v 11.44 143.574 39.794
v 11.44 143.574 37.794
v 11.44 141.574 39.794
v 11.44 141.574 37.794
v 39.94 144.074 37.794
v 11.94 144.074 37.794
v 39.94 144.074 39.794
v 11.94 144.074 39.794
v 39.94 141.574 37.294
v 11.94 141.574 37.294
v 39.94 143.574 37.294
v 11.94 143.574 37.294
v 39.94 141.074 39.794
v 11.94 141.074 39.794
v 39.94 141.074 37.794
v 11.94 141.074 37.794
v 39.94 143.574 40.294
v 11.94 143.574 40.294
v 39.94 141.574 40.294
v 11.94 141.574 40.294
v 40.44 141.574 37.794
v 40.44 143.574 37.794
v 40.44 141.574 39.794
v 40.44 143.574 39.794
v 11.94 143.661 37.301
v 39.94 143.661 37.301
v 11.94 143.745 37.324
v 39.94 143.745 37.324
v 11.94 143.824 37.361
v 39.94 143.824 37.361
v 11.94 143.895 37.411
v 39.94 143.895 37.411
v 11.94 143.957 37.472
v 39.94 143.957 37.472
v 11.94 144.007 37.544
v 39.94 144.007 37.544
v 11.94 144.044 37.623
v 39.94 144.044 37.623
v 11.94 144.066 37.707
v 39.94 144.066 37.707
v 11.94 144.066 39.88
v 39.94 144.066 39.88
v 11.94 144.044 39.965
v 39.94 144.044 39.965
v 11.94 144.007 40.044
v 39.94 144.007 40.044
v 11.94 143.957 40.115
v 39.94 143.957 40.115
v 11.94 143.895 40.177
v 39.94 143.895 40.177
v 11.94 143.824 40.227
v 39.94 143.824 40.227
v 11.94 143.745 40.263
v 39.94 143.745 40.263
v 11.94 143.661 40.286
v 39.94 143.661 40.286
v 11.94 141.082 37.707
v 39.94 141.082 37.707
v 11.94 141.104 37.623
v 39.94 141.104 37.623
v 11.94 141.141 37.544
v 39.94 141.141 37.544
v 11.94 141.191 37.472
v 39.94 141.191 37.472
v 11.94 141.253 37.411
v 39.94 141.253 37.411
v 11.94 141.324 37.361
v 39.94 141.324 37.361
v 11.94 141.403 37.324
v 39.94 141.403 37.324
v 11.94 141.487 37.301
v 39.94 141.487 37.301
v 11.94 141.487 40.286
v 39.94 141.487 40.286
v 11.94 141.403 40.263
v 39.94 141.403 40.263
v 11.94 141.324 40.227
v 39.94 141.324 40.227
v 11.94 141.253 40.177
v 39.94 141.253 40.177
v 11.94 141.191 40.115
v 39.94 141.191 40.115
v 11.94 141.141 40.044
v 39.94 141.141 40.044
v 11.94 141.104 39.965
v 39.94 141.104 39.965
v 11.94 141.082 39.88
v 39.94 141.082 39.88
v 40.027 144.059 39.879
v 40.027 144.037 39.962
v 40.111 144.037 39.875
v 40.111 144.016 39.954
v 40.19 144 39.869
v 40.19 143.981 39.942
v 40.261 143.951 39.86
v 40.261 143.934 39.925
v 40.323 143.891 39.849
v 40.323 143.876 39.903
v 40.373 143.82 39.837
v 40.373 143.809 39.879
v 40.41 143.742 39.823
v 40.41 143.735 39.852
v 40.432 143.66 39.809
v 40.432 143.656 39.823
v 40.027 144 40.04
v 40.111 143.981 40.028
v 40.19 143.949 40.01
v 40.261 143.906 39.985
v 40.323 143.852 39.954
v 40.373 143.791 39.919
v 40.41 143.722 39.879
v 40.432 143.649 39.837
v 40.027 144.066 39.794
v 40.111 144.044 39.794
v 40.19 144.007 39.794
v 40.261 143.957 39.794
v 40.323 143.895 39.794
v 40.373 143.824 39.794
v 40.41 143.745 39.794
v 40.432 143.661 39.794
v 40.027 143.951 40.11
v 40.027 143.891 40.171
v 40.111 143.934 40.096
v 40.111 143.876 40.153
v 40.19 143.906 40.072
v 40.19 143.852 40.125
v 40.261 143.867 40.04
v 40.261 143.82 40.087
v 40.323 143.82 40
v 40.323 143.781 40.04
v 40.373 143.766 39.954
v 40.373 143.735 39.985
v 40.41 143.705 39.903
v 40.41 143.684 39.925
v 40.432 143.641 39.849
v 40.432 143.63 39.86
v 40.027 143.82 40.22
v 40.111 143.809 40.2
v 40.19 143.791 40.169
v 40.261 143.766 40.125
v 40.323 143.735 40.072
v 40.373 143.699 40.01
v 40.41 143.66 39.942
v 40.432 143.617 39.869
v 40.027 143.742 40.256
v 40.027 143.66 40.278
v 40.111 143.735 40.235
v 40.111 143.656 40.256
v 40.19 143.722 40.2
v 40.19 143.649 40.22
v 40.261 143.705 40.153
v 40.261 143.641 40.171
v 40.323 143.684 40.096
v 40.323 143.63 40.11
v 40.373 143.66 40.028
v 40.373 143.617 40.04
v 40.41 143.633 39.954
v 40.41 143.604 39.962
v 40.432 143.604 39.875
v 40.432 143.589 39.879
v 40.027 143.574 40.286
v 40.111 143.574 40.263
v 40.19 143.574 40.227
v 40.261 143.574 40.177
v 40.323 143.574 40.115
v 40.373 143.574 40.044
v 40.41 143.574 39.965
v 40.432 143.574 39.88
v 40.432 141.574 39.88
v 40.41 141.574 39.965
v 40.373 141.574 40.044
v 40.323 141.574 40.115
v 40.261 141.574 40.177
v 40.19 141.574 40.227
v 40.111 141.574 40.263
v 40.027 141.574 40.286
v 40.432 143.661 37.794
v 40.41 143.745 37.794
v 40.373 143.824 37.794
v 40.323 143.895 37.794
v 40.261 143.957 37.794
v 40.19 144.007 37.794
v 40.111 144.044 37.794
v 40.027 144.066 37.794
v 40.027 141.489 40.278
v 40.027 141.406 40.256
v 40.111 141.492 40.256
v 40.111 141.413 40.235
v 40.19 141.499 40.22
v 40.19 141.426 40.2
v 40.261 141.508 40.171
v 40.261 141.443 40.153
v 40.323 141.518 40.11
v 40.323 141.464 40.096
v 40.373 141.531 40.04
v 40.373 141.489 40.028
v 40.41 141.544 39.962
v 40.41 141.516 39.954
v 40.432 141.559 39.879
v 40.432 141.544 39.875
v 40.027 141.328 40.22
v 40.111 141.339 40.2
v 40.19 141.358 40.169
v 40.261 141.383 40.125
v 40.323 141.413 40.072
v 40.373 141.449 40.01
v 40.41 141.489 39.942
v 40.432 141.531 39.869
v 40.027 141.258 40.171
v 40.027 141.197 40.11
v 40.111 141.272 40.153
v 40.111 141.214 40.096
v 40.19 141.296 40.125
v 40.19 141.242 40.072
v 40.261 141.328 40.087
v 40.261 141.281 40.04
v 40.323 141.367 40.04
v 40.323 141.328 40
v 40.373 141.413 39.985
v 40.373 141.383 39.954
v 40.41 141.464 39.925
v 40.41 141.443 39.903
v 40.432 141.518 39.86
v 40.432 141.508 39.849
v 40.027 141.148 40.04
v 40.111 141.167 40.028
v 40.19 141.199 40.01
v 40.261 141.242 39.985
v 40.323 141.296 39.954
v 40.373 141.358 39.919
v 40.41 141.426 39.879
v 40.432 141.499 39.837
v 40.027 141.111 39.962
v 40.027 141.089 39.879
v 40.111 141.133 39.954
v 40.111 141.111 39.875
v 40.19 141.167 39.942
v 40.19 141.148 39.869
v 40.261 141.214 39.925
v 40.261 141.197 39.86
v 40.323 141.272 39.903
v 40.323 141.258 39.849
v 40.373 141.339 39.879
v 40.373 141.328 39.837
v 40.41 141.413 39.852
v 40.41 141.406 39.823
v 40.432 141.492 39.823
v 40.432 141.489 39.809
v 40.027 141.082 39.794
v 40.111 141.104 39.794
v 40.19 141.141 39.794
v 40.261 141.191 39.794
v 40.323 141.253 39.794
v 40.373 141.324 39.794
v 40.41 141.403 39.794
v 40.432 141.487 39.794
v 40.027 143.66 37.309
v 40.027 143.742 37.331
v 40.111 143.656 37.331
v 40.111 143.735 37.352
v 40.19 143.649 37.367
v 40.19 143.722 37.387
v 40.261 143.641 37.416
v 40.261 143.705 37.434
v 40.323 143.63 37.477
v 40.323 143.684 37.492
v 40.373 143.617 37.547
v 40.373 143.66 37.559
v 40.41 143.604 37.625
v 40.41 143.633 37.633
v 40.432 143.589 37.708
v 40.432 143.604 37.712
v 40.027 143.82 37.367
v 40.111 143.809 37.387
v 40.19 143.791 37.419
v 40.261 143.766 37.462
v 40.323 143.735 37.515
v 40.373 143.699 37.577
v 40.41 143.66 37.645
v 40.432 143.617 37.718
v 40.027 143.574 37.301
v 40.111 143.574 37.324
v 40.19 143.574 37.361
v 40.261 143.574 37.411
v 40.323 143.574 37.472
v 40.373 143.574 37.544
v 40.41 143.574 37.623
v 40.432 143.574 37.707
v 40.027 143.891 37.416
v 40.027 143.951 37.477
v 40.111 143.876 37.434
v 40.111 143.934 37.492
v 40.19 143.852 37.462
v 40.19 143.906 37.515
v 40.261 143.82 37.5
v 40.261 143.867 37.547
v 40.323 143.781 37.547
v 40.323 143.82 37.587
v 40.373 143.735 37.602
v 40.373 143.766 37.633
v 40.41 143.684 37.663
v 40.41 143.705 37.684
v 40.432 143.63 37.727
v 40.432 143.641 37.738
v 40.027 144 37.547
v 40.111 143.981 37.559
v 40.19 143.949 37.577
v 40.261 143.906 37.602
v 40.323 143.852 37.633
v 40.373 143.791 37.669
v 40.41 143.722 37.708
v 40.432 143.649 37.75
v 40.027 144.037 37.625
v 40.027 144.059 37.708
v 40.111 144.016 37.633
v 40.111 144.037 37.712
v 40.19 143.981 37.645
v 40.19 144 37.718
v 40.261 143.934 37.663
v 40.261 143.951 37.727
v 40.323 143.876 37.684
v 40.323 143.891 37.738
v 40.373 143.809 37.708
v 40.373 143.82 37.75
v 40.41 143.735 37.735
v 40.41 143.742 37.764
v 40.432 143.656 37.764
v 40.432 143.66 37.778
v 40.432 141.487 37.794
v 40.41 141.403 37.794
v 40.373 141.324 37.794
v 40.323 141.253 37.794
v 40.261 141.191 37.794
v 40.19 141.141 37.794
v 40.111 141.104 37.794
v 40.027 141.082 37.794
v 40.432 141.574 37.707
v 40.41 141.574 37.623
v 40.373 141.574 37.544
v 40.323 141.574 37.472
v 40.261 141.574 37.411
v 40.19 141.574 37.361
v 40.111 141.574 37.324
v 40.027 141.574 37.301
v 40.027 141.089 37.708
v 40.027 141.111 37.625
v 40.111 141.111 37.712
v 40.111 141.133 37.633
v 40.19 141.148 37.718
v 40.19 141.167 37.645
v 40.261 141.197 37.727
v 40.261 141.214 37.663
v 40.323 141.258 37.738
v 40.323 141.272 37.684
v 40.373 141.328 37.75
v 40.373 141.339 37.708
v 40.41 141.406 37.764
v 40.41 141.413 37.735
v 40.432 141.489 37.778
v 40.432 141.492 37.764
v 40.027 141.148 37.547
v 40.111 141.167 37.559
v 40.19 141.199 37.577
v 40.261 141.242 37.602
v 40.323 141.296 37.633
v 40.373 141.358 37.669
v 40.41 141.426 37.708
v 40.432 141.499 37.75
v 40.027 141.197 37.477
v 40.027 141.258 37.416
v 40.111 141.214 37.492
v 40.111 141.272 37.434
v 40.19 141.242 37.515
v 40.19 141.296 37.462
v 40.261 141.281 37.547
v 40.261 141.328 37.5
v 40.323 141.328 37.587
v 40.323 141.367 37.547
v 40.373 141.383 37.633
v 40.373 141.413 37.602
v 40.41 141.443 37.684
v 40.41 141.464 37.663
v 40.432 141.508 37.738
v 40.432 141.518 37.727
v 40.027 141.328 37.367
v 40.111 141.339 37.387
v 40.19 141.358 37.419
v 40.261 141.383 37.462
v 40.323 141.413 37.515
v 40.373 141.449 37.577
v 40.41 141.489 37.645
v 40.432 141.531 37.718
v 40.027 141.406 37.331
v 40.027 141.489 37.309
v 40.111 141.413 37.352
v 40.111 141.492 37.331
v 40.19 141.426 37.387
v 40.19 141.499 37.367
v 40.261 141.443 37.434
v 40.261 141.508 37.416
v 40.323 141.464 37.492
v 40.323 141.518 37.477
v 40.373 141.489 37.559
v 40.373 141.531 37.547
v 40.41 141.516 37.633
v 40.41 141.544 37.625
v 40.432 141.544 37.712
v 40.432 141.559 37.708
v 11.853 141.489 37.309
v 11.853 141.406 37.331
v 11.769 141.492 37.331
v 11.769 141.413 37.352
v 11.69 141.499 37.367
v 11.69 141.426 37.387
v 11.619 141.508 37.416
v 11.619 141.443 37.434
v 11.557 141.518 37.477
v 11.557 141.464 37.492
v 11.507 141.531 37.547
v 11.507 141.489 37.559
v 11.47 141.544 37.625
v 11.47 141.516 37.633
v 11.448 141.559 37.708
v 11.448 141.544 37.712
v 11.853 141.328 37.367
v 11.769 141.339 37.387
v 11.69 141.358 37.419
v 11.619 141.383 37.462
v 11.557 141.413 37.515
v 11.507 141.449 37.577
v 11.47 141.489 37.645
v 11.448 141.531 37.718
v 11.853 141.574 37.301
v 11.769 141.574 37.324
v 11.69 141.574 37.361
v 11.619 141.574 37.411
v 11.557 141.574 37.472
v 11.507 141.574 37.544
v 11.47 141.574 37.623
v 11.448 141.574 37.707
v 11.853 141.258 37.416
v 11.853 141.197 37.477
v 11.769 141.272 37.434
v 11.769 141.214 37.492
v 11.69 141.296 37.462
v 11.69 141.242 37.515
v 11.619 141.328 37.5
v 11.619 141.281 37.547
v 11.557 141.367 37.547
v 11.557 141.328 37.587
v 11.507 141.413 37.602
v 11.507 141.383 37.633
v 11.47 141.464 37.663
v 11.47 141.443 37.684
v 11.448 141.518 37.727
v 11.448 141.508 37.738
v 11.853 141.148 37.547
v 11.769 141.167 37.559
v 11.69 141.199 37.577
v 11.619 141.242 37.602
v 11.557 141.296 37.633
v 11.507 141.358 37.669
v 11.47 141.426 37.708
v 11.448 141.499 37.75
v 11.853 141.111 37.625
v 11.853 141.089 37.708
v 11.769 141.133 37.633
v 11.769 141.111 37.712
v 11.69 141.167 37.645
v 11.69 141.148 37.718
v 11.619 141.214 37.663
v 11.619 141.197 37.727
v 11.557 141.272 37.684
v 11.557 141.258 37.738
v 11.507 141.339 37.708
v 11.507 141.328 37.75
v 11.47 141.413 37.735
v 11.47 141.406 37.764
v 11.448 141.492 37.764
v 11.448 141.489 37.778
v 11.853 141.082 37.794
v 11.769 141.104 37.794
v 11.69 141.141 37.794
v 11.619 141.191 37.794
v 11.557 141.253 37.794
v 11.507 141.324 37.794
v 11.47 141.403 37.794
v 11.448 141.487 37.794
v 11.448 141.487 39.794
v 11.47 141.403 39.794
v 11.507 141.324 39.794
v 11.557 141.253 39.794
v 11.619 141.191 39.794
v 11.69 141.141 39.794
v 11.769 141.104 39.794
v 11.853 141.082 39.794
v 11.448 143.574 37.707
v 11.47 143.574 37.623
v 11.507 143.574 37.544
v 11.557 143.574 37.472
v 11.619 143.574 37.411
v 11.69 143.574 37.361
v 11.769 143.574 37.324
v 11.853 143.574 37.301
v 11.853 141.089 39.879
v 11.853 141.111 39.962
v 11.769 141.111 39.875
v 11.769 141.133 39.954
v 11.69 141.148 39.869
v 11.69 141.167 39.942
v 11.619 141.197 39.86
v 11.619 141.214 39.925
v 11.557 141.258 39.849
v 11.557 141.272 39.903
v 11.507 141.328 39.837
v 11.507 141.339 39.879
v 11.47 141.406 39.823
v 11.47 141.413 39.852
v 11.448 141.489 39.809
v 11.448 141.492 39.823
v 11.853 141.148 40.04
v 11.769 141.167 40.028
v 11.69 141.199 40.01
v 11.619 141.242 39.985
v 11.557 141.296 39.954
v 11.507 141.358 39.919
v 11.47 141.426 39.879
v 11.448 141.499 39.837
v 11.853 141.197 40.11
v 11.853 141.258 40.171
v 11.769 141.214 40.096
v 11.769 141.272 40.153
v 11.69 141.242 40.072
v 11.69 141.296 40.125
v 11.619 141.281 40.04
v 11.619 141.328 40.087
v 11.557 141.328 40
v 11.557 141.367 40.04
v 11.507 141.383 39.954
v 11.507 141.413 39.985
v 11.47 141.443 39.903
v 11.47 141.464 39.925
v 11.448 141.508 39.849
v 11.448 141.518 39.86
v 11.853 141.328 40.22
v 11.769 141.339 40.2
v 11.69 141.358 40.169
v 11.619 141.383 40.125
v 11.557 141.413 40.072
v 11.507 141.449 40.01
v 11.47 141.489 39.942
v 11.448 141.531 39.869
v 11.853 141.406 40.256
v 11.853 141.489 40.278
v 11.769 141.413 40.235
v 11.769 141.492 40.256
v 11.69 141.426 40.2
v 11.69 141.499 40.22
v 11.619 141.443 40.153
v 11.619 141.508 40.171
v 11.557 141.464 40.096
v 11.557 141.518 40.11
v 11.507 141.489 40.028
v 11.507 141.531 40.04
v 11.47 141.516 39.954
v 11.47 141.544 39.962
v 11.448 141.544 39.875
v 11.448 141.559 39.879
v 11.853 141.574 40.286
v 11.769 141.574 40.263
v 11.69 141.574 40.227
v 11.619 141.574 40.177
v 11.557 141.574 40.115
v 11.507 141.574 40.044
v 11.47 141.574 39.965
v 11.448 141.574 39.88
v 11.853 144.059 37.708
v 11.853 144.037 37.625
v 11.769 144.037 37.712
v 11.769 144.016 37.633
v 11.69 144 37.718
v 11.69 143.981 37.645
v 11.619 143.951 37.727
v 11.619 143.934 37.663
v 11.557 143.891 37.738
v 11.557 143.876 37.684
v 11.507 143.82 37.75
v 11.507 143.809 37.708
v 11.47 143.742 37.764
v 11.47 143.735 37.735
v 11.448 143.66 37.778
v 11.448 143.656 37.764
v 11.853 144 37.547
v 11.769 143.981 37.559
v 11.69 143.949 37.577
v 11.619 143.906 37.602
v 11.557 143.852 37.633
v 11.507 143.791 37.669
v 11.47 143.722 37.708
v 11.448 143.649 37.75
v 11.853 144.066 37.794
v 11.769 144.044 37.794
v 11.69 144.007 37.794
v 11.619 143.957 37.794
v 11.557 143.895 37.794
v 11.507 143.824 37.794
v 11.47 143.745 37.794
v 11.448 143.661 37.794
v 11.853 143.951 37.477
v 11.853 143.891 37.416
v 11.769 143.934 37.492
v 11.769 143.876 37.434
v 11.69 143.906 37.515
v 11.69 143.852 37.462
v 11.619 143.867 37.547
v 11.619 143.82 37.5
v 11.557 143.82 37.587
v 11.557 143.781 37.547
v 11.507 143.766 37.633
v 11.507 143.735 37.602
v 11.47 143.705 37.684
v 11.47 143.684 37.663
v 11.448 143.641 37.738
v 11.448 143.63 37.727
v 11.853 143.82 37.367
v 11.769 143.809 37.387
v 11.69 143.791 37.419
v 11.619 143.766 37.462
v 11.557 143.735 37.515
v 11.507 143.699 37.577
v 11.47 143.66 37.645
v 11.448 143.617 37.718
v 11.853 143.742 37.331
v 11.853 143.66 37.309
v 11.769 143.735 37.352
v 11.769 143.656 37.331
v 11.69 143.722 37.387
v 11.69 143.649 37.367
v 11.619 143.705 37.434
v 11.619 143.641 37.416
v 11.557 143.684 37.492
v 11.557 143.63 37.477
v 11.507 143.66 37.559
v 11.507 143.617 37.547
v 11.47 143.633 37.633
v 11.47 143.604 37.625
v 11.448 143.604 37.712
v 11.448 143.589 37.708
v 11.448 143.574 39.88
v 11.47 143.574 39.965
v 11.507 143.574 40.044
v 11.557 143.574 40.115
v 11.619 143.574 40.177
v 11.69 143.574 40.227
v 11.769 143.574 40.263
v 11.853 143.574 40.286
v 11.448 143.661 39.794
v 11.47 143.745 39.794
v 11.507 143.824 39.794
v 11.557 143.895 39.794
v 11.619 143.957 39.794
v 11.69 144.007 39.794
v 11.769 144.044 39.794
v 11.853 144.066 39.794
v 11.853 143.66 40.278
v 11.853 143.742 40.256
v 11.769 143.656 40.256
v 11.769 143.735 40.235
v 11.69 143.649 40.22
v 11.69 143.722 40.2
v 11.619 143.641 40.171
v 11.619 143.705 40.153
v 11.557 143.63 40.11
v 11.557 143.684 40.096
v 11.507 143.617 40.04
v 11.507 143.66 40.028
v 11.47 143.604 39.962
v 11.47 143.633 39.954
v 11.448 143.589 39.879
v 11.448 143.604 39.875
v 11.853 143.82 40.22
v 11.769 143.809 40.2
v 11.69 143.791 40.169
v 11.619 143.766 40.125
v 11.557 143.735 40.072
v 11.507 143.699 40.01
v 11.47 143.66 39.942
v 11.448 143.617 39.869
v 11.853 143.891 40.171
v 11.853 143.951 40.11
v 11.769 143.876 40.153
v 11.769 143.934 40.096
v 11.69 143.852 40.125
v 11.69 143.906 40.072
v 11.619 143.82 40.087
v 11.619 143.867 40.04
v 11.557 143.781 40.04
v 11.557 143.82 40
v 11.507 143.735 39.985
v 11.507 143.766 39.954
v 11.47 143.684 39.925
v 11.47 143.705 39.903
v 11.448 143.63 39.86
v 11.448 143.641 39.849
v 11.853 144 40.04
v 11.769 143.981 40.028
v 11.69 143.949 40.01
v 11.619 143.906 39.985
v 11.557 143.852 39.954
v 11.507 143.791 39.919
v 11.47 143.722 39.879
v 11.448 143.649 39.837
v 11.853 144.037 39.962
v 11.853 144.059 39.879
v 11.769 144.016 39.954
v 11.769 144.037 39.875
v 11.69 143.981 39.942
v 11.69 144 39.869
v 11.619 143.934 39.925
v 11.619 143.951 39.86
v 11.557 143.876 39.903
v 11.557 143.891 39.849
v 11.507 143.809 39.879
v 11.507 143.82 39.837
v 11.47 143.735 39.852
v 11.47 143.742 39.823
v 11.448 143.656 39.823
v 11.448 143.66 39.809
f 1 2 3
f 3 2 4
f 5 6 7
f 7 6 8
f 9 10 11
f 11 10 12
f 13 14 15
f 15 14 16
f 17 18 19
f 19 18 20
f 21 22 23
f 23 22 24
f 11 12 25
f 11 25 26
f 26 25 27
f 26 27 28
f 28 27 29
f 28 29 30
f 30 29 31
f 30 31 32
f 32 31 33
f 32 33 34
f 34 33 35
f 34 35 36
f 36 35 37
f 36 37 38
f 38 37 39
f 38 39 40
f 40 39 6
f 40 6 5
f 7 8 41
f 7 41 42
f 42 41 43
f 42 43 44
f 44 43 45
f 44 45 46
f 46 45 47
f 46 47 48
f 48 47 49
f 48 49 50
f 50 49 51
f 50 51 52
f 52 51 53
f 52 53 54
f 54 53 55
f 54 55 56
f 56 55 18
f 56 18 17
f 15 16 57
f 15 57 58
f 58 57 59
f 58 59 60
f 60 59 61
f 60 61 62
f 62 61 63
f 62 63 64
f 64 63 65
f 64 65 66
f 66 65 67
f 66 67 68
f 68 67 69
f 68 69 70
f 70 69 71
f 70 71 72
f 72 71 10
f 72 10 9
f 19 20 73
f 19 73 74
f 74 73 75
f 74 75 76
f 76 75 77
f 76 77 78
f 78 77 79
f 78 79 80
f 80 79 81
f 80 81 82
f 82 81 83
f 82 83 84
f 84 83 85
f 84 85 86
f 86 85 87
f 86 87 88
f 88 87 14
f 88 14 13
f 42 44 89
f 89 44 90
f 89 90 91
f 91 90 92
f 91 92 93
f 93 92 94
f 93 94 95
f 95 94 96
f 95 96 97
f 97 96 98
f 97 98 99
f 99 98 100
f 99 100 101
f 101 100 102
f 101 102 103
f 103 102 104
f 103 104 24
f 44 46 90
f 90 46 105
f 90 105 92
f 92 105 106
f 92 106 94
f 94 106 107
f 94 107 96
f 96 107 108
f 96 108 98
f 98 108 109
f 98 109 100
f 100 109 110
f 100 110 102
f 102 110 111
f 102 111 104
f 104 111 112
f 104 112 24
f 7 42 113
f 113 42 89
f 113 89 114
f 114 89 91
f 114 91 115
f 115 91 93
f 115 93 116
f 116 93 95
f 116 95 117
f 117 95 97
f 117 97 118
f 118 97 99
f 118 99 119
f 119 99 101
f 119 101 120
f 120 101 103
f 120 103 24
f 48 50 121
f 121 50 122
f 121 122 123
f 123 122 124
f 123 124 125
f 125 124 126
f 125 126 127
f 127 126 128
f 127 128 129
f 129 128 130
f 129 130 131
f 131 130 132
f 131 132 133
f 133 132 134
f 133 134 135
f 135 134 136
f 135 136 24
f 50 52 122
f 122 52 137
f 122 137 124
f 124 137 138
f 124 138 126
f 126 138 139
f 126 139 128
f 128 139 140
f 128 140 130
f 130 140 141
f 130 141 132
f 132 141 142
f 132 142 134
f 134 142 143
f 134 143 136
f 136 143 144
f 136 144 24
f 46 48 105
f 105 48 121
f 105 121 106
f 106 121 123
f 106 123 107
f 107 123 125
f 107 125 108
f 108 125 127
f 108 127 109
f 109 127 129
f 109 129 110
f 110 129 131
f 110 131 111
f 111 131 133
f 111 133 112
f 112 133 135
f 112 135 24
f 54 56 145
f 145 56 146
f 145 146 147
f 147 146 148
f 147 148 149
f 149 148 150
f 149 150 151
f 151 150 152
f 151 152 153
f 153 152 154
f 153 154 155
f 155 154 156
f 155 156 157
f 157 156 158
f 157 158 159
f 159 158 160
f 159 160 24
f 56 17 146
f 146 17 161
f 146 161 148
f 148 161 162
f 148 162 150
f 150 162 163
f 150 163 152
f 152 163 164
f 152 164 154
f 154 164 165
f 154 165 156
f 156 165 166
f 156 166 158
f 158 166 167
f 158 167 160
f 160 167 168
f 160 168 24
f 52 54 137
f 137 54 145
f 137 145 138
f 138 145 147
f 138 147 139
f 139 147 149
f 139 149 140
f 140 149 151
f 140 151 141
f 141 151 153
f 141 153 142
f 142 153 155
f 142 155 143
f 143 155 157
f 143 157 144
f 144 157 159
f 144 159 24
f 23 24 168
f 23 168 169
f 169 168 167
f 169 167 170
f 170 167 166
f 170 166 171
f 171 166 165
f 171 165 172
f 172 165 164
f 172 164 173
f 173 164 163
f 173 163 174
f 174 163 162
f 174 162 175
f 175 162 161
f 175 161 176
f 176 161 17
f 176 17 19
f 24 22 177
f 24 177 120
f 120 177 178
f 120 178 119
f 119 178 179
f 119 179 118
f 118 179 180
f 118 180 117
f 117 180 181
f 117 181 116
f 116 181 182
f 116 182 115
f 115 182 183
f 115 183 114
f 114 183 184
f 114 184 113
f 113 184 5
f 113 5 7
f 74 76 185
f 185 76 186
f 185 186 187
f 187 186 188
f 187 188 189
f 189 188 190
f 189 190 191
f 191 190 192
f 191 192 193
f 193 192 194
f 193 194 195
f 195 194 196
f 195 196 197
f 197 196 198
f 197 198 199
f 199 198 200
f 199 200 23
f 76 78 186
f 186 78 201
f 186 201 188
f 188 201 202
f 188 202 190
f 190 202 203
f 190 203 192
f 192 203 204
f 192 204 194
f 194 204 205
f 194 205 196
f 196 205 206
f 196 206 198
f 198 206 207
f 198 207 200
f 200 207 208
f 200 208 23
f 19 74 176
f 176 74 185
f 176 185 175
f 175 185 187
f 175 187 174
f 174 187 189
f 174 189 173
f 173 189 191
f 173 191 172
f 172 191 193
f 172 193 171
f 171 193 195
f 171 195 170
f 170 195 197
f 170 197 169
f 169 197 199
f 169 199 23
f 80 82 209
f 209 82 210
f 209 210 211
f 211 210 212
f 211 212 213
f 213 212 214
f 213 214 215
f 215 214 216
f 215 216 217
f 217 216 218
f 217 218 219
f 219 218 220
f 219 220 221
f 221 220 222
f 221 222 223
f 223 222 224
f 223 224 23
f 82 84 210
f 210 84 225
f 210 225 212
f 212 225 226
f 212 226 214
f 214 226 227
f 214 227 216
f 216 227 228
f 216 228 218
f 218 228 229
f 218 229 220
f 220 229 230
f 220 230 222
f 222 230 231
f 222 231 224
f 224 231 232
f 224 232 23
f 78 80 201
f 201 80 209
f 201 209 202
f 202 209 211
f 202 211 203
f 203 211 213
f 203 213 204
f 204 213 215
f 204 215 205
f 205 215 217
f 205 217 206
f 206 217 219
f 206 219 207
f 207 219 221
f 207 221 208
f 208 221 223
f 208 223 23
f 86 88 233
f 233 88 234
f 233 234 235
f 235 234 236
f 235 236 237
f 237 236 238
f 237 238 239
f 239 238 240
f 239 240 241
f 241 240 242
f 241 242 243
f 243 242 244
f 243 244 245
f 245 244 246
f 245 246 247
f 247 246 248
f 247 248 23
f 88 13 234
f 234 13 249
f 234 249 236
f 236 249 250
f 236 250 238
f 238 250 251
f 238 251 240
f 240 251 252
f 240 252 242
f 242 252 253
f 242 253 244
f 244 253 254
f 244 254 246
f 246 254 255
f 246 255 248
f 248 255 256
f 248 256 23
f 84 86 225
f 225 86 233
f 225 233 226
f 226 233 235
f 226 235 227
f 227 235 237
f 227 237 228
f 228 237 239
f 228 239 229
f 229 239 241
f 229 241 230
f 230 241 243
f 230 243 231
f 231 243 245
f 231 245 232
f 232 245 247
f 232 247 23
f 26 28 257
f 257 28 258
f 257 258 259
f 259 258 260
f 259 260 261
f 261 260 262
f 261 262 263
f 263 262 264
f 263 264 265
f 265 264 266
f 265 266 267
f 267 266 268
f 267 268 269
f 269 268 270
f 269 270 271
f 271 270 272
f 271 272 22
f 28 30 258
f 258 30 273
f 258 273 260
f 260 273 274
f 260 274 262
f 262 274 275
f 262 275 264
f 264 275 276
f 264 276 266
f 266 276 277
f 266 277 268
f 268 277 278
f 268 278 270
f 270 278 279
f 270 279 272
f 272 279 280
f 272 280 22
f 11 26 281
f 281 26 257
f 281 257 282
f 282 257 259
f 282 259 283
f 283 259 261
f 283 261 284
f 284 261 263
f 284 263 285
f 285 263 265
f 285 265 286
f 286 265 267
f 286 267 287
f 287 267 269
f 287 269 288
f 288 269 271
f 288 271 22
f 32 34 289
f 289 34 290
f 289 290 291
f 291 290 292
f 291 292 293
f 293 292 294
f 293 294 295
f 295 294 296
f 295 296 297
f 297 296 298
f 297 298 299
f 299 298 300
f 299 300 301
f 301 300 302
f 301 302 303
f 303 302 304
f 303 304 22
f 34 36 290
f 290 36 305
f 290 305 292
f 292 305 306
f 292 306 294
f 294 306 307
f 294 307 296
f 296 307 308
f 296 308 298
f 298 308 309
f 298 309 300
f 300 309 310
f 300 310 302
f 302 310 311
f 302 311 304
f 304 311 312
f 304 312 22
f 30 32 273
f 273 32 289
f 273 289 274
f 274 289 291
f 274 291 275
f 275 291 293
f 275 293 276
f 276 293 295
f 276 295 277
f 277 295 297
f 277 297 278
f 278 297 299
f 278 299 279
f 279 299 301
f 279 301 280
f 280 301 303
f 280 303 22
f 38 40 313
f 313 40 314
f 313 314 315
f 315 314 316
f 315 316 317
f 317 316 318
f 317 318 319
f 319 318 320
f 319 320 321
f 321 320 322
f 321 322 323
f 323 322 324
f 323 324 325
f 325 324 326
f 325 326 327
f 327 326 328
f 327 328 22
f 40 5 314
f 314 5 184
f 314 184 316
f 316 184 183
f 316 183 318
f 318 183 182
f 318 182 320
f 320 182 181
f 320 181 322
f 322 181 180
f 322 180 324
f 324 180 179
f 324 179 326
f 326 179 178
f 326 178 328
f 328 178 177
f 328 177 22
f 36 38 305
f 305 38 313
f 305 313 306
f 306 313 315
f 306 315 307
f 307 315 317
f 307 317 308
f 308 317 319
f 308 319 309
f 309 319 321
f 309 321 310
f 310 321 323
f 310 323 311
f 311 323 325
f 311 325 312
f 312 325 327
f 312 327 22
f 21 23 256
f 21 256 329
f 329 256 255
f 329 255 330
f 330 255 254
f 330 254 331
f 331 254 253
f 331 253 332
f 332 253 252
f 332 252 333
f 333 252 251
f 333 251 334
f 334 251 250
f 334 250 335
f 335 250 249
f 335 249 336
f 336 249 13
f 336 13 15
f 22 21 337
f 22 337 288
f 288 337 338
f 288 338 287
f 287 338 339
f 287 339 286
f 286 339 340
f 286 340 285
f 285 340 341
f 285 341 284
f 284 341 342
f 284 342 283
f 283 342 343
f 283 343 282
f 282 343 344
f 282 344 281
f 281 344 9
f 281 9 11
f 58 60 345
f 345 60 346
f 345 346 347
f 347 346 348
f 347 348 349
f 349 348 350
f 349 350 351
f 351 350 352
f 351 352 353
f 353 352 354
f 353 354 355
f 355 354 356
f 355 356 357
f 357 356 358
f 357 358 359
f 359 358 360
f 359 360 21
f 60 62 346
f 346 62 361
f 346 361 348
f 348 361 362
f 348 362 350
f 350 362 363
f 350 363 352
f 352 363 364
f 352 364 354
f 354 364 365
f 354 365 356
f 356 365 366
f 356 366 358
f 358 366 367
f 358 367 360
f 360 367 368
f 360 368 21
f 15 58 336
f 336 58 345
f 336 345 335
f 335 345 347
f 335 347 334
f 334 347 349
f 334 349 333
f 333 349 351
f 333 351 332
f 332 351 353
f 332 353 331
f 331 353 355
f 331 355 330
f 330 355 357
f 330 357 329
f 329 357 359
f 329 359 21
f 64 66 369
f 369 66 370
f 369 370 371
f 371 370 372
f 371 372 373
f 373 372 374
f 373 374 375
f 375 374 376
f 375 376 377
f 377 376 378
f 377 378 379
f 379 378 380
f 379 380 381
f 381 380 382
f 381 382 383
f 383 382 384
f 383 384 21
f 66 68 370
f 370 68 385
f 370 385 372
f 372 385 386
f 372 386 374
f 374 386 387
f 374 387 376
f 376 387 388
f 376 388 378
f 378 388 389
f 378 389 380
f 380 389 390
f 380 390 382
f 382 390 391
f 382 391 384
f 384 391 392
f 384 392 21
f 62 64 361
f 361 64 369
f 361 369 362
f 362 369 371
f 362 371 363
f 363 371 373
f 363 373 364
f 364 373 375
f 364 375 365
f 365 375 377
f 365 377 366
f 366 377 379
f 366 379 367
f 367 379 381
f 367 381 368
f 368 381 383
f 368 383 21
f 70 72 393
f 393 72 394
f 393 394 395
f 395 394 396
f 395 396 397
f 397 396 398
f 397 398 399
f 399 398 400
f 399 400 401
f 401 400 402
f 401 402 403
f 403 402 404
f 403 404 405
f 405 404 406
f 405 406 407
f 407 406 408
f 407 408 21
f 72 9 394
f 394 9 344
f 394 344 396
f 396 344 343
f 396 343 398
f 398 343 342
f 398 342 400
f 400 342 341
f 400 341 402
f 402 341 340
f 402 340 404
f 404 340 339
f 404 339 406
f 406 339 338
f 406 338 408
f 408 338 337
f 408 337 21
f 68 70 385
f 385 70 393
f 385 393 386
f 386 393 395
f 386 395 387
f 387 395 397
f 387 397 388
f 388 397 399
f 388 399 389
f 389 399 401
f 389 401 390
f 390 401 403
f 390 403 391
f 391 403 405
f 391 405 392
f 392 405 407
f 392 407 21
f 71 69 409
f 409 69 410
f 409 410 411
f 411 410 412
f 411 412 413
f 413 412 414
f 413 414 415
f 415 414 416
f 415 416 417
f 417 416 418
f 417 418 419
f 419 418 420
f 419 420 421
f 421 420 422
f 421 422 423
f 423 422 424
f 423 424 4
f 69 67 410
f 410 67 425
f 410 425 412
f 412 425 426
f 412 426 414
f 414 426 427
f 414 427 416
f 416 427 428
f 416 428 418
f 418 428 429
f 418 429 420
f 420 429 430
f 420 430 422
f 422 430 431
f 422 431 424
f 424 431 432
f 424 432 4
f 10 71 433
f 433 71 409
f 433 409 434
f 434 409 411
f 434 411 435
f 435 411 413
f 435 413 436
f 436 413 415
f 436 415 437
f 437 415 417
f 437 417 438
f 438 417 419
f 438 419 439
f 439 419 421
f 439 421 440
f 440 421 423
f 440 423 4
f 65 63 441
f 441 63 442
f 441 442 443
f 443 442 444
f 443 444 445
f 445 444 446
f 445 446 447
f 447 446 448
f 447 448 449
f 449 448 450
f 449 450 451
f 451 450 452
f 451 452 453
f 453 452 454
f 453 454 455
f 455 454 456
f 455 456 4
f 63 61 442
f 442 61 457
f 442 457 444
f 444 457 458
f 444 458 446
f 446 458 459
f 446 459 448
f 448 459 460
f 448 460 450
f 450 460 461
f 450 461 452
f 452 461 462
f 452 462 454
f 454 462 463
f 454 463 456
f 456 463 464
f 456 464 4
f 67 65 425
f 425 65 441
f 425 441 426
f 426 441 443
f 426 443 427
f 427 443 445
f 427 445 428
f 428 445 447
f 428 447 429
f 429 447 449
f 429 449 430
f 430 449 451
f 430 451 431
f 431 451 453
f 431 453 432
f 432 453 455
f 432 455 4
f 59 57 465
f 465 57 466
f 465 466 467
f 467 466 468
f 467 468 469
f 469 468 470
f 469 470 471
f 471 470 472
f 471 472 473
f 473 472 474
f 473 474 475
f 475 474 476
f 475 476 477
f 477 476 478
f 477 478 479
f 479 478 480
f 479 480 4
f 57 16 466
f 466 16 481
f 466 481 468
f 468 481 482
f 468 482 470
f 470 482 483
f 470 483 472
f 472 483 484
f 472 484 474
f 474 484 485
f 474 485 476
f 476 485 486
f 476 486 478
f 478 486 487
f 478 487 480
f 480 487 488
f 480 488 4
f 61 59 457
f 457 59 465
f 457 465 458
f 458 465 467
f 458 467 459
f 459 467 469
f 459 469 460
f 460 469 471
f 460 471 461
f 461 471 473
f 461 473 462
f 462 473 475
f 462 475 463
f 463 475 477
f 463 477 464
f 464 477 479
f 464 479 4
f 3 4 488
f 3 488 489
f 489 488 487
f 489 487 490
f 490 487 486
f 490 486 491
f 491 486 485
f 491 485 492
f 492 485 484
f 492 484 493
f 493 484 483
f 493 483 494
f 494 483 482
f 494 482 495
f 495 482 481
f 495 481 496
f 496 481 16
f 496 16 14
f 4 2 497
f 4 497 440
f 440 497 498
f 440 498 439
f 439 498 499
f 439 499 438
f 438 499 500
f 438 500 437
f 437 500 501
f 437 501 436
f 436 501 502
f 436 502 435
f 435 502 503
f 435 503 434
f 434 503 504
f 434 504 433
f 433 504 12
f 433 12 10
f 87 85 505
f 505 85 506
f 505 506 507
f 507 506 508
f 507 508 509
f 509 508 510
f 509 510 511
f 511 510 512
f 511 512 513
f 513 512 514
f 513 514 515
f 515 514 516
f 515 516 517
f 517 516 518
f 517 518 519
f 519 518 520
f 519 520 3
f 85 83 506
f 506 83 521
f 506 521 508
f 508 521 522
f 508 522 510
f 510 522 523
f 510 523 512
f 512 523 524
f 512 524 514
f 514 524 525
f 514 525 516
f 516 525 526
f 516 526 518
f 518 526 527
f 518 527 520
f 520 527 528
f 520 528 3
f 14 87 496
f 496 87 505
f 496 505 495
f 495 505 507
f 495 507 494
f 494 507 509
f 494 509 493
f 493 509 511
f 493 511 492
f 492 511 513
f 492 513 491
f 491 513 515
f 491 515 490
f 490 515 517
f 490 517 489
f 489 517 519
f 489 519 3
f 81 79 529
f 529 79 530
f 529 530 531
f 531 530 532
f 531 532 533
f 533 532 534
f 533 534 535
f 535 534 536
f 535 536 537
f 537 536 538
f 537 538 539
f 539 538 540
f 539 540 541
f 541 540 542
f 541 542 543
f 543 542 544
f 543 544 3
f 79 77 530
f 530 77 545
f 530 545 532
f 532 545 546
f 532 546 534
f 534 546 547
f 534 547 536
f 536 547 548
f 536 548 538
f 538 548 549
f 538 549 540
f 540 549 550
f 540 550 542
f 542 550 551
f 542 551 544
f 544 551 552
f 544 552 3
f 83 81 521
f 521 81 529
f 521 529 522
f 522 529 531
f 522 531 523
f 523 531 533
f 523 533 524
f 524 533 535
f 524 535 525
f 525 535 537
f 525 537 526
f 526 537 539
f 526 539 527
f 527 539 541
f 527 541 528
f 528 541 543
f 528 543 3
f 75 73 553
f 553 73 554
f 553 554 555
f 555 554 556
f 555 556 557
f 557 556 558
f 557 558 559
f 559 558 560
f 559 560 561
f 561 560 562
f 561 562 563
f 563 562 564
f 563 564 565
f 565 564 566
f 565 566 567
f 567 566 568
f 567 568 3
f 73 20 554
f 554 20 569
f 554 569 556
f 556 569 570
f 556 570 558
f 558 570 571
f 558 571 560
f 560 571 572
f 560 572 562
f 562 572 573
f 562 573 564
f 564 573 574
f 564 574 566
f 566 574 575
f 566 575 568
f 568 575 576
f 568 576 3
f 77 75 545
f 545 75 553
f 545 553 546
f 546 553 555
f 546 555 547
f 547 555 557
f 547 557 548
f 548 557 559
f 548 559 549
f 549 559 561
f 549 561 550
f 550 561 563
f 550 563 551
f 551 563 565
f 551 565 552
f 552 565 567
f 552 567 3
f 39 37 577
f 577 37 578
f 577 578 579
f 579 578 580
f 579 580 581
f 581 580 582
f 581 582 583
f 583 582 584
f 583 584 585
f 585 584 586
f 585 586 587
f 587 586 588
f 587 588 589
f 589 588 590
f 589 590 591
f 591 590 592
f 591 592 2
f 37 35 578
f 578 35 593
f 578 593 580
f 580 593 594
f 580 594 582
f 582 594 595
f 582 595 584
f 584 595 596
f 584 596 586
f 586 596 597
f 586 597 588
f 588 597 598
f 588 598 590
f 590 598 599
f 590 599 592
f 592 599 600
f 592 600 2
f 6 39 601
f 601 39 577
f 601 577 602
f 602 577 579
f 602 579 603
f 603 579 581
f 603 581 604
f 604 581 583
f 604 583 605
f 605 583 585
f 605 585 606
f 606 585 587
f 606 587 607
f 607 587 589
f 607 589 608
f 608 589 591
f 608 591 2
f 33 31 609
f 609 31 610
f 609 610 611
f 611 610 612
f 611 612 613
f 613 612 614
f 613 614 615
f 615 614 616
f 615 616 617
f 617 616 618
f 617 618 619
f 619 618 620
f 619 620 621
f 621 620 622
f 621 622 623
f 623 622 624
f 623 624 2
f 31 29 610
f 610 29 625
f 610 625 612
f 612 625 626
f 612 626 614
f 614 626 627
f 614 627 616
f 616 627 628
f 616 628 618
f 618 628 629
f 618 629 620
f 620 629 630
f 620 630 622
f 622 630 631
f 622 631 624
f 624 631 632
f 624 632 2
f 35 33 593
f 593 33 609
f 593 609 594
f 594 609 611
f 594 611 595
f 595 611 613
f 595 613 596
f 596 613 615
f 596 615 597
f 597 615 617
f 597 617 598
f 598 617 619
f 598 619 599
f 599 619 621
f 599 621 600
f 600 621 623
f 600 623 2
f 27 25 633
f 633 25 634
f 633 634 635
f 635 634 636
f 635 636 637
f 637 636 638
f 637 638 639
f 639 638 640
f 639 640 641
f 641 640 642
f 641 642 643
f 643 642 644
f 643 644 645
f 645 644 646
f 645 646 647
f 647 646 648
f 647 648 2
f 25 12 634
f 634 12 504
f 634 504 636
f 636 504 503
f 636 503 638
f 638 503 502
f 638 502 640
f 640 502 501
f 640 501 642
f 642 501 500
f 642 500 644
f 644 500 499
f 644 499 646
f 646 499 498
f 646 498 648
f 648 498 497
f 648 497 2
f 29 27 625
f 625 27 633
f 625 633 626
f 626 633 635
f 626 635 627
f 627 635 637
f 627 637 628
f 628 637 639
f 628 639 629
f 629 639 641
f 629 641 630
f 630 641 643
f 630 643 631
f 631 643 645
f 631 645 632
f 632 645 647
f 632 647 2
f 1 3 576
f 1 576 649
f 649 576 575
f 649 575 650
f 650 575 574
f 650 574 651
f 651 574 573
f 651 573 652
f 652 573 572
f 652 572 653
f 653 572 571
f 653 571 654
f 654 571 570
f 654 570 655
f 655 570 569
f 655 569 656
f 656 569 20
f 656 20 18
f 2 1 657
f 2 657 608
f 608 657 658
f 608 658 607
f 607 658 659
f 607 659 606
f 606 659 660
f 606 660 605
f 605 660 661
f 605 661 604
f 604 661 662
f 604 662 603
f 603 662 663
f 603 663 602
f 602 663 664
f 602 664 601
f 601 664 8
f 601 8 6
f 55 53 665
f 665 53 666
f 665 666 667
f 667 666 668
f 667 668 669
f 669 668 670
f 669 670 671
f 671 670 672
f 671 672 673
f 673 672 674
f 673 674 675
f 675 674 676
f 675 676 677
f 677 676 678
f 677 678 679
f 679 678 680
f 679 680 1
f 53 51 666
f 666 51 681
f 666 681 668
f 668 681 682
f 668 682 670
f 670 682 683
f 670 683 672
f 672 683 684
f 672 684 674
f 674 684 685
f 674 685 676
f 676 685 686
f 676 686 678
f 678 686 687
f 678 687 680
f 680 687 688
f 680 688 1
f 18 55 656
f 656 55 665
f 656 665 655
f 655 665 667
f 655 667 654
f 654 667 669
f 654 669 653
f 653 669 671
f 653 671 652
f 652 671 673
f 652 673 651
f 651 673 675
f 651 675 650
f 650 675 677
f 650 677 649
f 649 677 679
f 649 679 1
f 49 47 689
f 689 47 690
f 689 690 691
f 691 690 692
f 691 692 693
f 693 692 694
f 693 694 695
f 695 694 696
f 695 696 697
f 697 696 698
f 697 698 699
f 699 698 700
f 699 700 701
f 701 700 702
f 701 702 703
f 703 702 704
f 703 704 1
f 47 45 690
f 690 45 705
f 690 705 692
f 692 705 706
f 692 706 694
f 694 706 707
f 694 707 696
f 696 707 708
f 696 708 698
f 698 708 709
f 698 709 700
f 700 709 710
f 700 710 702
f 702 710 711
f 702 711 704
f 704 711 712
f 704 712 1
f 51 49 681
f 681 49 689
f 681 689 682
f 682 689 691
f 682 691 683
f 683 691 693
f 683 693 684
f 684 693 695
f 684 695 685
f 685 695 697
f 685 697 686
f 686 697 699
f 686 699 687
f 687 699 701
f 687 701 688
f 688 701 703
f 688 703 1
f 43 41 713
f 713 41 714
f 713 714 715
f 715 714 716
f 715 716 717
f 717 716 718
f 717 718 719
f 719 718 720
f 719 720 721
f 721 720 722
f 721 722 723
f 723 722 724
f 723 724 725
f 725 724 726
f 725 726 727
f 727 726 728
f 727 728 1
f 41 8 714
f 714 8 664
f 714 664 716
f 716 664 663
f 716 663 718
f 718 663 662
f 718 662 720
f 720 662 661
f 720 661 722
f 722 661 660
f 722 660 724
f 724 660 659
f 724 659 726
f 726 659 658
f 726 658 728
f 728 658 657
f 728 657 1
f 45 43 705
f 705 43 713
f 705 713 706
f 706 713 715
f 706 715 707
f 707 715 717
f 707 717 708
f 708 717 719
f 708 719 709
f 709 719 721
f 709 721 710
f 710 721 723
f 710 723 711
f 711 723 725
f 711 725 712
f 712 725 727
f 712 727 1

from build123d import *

# Parameters (mm, degrees)
BOSS_EXTRUDE1_START = 11.440071
SKETCH2_W           = 3
SKETCH2_H           = 3
BOSS_EXTRUDE1_DEPTH = 29
FILLET1_R           = 0.5
FILLET3_R           = 0.5


with BuildPart() as part:
    # Sketch2 → Boss-Extrude1 (new body)
    with BuildSketch(Plane(origin=(0, 0, 0), x_dir=(0, 0, -1), z_dir=(1, 0, 0)).offset(BOSS_EXTRUDE1_START)):
        with Locations((-38.793556796, 142.574028513)):
            Rectangle(SKETCH2_W, SKETCH2_H)
    extrude(amount=BOSS_EXTRUDE1_DEPTH)

    # Fillet1
    fillet1_edges = [part.edges().sort_by_distance(p)[0] for p in [
        (25.940071, 144.074028513, 40.293556796),
        (25.940071, 144.074028513, 37.293556796),
        (25.940071, 141.074028513, 37.293556796),
        (25.940071, 141.074028513, 40.293556796),
    ]]
    fillet(fillet1_edges, radius=FILLET1_R)

    # Fillet3
    fillet3_edges = [part.edges().sort_by_distance(p)[0] for p in [
        (40.440071, 144.074028513, 38.793556796),
        (11.440071, 144.074028513, 38.793556796),
        (11.440071, 142.574028513, 40.293556796),
        (11.440071, 142.574028513, 37.293556796),
        (11.440071, 141.074028513, 38.793556796),
        (11.440071, 141.220475122, 40.147110187),
        (11.440071, 141.220475122, 37.440003406),
        (11.440071, 143.927581903, 40.147110187),
        (11.440071, 143.927581903, 37.440003406),
        (40.440071, 142.574028513, 37.293556796),
        (40.440071, 141.074028513, 38.793556796),
        (40.440071, 142.574028513, 40.293556796),
        (40.440071, 141.220475122, 40.147110187),
        (40.440071, 141.220475122, 37.440003406),
        (40.440071, 143.927581903, 40.147110187),
        (40.440071, 143.927581903, 37.440003406),
    ]]
    fillet(fillet3_edges, radius=FILLET3_R)


solid = part.part
